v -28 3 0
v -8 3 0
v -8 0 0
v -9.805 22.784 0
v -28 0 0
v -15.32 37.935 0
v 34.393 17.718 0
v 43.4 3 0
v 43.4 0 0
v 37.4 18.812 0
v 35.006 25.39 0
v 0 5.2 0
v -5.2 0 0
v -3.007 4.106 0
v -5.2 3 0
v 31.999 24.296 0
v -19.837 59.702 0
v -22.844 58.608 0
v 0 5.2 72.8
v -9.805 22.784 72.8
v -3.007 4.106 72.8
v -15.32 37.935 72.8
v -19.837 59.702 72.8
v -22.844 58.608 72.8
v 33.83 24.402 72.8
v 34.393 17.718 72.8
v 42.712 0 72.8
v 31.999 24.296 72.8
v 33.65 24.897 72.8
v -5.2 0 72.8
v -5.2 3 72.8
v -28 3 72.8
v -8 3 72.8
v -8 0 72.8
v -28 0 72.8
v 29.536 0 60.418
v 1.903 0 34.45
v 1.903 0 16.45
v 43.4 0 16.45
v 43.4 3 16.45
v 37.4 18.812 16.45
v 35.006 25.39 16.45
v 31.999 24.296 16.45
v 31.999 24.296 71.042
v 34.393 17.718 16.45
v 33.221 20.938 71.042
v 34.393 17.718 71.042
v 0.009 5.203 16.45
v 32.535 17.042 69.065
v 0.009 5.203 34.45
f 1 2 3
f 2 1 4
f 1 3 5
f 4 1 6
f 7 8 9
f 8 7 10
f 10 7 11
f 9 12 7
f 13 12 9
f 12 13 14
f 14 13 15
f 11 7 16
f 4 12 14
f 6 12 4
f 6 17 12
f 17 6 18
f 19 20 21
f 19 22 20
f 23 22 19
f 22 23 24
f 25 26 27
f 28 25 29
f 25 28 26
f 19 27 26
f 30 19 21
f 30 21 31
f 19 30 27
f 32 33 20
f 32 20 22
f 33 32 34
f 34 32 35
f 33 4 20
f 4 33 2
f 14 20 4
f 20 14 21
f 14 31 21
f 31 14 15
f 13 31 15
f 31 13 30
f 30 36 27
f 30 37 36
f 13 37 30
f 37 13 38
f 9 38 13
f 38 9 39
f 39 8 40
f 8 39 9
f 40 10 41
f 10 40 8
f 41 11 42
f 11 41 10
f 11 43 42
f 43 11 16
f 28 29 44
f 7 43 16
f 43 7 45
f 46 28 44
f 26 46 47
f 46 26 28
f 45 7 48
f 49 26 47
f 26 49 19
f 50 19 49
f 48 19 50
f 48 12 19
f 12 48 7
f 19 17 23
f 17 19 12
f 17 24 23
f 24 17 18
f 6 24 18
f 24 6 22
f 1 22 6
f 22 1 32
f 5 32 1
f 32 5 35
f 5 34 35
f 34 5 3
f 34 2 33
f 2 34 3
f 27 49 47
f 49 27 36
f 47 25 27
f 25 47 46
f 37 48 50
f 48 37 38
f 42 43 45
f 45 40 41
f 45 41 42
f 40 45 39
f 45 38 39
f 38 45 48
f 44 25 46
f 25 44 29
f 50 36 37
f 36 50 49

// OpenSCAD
// file: parts_preview.scad
// Visual stand-ins for the electronics (previews and fit checks only, never printed).
module dummy_board() {
    // PCB, ESP32 module with shield, micro-USB, header pins underneath
    at_inner([board_x0 + board_tol / 2, board_y0 + board_tol / 2], pcb_z0) {
        color("#1f6f3f") cube([board_l, board_w, board_t]);
        color("#c0c4c8") translate([board_l - 25.5, (board_w - 18) / 2, board_t]) cube([25.5 - 6.5, 18, 3.2]);
        color("#20242a") translate([board_l - 6.5, (board_w - 18) / 2, board_t]) cube([6.5, 18, 0.8]);
        color("#c0c4c8") translate([-0.8, board_w / 2 - 4, board_t]) cube([5.5, 8, 2.8]);
        color("#111") for (y = [1.3, board_w - 1.3 - 2.5]) translate([7, y, -8.5]) cube([38, 2.5, 8.5]);
    }
}
module dummy_buzzer(buz) { at_inner(buz, base_h - 9.5) cylinder(d = buzzer_d, h = 9.5); }
// switch body + stem (cap separately); body rests on the backer bar
module dummy_switch(btn) {
    at_inner(btn, base_h - btn_drop) {
        translate([-btn_body / 2, -btn_body / 2, 0]) cube([btn_body, btn_body, 3.5]);
        cylinder(d = 3.5, h = btn_stack_h - 3);
    }
}
module dummy_cap(btn) { at_inner(btn, base_h + lid_t + btn_proud - 6) cylinder(d = btn_cap_d, h = 6); }
module dummy_backer(btn) { at_inner(btn, base_h - btn_drop - btn_slot_h) rotate(90) button_backer(); }
module dummy_led(led_p) {
    at_inner(led_p, base_h - 1) { cylinder(d = led_flange_d, h = 1); cylinder(d = led_d, h = 8.6 - 2.5); translate([0, 0, 8.6 - 2.5]) sphere(d = led_d); }
}
module preview_internals(buz, btn, led_p, rx, e) {
    translate([0, 0, e]) dummy_board();
    color("#151515") translate([0, 0, e * 1.5]) dummy_buzzer(buz);
    color("#202020") translate([0, 0, e * 1.5]) dummy_switch(btn);
    color("#8a8f98") translate([0, 0, e * 1.5]) dummy_backer(btn);
    color("#ff3b30") translate([0, 0, e * 1.5]) dummy_led(led_p);
}
module preview_cap(btn, e) {
    color("#d7262e") translate([0, 0, e]) dummy_cap(btn);
}
module preview_antenna(e) {
    color("#1a1a1a") translate([outer_x + e * 0.5, wall + board_cy, 14]) {
        rotate([0, 90, 0]) cylinder(d = 8, h = 10);
        translate([10, 0, 0]) rotate([0, 0, 0]) cylinder(d = 9, h = 70);
    }
}
// file: alert_station.scad
// Sentry Phase 8 - Alert Station enclosure (ESP32 + buzzer + LED under a light dome + button)
// part = "base" | "lid" | "dome" | "backer" | "shim" | "assembly" | "exploded"
include <sentry_enclosure.scad>
part = "assembly";

as_buzzer = [13, strip_y];
as_dome   = [33, strip_y];
as_button = [53, strip_y - 1];

module as_lid() {
    difference() {
        union() {
            lid_plate();
            lid_skirt();
            board_holddown();
            button_socket(as_button);
            buzzer_holder(as_buzzer);
            led_boss(as_dome);
        }
        screw_holes();
        button_hole(as_button);
        buzzer_grille(as_buzzer);
        led_hole(as_dome);
        dome_recess(as_dome);
        wave_logo([inner_x / 2, 18], 1.4);   // no brand name, just the Wi-Fi mark
        lid_text("SILENCE", [as_button[0] - 1, inner_y - 2.2], 2.8);
    }
}
module as_base() { base(sma = false, label = ""); }

include <parts_preview.scad>
module as_assembly(e = 0) {
    color("#2b2f36") as_base();
    preview_internals(as_buzzer, as_button, as_dome, false, e);
    color("#e8e6e1") translate([0, 0, base_h + e * 2]) as_lid();
    color("#fff4f2", 0.75) at_inner(as_dome, base_h + lid_t + e * 2.6) light_dome();
    color("#ff3b30") at_inner(as_dome, base_h + lid_t + e * 2.6 + 3) sphere(d = 4);
    preview_cap(as_button, e * 2);
}
if (part == "base") as_base();
else if (part == "base_sma") base(sma = true, label = "");   // for an ESP32-WROOM-32U that needs its antenna outside
else if (part == "lid") translate([0, outer_y, lid_t]) rotate([180, 0, 0]) as_lid();
else if (part == "dome") translate([0, 0, 1]) light_dome();
else if (part == "backer") button_backer();
else if (part == "shim") button_shim(1.0);
// fit-check parts (assembled position)
else if (part == "lid_asm") translate([0, 0, base_h]) as_lid();
else if (part == "dummy_board") dummy_board();
else if (part == "dummy_buzzer") dummy_buzzer(as_buzzer);
else if (part == "dummy_switch") dummy_switch(as_button);
else if (part == "dummy_cap") dummy_cap(as_button);
else if (part == "dummy_backer") dummy_backer(as_button);
else if (part == "dummy_led") dummy_led(as_dome);
else if (part == "assembly" || part == "exploded") {
    e = part == "exploded" ? 30 : 0;
    as_assembly(e);
}
// main file
// Sentry Phase 8 - desk stand (fits the RX node and the Alert Station)
// part = "stand" (printable, already lying on its side) | "scene" (preview with a device)
include <sentry_enclosure.scad>
use <alert_station.scad>
part = "stand";

// put a device (its own coordinates) into the stand: bottom on the back plate, USB end on the ledge
module on_stand() {
    stand_frame3d() multmatrix([[0, 0, 1, 0], [1, 0, 0, 0], [0, 1, 0, 0], [0, 0, 0, 1]]) children();
}
module stand_frame3d() { translate([0, 5.2, 0]) rotate([0, 0, stand_tilt]) children(); }

if (part == "stand") desk_stand();
else if (part == "scene") {
    // shown standing up (the printed part lies on its side)
    rotate([90, 0, 0]) {
        color("#3a6ea5") desk_stand();
        on_stand() translate([0, 0, 0.4]) as_assembly(0);
    }
}
